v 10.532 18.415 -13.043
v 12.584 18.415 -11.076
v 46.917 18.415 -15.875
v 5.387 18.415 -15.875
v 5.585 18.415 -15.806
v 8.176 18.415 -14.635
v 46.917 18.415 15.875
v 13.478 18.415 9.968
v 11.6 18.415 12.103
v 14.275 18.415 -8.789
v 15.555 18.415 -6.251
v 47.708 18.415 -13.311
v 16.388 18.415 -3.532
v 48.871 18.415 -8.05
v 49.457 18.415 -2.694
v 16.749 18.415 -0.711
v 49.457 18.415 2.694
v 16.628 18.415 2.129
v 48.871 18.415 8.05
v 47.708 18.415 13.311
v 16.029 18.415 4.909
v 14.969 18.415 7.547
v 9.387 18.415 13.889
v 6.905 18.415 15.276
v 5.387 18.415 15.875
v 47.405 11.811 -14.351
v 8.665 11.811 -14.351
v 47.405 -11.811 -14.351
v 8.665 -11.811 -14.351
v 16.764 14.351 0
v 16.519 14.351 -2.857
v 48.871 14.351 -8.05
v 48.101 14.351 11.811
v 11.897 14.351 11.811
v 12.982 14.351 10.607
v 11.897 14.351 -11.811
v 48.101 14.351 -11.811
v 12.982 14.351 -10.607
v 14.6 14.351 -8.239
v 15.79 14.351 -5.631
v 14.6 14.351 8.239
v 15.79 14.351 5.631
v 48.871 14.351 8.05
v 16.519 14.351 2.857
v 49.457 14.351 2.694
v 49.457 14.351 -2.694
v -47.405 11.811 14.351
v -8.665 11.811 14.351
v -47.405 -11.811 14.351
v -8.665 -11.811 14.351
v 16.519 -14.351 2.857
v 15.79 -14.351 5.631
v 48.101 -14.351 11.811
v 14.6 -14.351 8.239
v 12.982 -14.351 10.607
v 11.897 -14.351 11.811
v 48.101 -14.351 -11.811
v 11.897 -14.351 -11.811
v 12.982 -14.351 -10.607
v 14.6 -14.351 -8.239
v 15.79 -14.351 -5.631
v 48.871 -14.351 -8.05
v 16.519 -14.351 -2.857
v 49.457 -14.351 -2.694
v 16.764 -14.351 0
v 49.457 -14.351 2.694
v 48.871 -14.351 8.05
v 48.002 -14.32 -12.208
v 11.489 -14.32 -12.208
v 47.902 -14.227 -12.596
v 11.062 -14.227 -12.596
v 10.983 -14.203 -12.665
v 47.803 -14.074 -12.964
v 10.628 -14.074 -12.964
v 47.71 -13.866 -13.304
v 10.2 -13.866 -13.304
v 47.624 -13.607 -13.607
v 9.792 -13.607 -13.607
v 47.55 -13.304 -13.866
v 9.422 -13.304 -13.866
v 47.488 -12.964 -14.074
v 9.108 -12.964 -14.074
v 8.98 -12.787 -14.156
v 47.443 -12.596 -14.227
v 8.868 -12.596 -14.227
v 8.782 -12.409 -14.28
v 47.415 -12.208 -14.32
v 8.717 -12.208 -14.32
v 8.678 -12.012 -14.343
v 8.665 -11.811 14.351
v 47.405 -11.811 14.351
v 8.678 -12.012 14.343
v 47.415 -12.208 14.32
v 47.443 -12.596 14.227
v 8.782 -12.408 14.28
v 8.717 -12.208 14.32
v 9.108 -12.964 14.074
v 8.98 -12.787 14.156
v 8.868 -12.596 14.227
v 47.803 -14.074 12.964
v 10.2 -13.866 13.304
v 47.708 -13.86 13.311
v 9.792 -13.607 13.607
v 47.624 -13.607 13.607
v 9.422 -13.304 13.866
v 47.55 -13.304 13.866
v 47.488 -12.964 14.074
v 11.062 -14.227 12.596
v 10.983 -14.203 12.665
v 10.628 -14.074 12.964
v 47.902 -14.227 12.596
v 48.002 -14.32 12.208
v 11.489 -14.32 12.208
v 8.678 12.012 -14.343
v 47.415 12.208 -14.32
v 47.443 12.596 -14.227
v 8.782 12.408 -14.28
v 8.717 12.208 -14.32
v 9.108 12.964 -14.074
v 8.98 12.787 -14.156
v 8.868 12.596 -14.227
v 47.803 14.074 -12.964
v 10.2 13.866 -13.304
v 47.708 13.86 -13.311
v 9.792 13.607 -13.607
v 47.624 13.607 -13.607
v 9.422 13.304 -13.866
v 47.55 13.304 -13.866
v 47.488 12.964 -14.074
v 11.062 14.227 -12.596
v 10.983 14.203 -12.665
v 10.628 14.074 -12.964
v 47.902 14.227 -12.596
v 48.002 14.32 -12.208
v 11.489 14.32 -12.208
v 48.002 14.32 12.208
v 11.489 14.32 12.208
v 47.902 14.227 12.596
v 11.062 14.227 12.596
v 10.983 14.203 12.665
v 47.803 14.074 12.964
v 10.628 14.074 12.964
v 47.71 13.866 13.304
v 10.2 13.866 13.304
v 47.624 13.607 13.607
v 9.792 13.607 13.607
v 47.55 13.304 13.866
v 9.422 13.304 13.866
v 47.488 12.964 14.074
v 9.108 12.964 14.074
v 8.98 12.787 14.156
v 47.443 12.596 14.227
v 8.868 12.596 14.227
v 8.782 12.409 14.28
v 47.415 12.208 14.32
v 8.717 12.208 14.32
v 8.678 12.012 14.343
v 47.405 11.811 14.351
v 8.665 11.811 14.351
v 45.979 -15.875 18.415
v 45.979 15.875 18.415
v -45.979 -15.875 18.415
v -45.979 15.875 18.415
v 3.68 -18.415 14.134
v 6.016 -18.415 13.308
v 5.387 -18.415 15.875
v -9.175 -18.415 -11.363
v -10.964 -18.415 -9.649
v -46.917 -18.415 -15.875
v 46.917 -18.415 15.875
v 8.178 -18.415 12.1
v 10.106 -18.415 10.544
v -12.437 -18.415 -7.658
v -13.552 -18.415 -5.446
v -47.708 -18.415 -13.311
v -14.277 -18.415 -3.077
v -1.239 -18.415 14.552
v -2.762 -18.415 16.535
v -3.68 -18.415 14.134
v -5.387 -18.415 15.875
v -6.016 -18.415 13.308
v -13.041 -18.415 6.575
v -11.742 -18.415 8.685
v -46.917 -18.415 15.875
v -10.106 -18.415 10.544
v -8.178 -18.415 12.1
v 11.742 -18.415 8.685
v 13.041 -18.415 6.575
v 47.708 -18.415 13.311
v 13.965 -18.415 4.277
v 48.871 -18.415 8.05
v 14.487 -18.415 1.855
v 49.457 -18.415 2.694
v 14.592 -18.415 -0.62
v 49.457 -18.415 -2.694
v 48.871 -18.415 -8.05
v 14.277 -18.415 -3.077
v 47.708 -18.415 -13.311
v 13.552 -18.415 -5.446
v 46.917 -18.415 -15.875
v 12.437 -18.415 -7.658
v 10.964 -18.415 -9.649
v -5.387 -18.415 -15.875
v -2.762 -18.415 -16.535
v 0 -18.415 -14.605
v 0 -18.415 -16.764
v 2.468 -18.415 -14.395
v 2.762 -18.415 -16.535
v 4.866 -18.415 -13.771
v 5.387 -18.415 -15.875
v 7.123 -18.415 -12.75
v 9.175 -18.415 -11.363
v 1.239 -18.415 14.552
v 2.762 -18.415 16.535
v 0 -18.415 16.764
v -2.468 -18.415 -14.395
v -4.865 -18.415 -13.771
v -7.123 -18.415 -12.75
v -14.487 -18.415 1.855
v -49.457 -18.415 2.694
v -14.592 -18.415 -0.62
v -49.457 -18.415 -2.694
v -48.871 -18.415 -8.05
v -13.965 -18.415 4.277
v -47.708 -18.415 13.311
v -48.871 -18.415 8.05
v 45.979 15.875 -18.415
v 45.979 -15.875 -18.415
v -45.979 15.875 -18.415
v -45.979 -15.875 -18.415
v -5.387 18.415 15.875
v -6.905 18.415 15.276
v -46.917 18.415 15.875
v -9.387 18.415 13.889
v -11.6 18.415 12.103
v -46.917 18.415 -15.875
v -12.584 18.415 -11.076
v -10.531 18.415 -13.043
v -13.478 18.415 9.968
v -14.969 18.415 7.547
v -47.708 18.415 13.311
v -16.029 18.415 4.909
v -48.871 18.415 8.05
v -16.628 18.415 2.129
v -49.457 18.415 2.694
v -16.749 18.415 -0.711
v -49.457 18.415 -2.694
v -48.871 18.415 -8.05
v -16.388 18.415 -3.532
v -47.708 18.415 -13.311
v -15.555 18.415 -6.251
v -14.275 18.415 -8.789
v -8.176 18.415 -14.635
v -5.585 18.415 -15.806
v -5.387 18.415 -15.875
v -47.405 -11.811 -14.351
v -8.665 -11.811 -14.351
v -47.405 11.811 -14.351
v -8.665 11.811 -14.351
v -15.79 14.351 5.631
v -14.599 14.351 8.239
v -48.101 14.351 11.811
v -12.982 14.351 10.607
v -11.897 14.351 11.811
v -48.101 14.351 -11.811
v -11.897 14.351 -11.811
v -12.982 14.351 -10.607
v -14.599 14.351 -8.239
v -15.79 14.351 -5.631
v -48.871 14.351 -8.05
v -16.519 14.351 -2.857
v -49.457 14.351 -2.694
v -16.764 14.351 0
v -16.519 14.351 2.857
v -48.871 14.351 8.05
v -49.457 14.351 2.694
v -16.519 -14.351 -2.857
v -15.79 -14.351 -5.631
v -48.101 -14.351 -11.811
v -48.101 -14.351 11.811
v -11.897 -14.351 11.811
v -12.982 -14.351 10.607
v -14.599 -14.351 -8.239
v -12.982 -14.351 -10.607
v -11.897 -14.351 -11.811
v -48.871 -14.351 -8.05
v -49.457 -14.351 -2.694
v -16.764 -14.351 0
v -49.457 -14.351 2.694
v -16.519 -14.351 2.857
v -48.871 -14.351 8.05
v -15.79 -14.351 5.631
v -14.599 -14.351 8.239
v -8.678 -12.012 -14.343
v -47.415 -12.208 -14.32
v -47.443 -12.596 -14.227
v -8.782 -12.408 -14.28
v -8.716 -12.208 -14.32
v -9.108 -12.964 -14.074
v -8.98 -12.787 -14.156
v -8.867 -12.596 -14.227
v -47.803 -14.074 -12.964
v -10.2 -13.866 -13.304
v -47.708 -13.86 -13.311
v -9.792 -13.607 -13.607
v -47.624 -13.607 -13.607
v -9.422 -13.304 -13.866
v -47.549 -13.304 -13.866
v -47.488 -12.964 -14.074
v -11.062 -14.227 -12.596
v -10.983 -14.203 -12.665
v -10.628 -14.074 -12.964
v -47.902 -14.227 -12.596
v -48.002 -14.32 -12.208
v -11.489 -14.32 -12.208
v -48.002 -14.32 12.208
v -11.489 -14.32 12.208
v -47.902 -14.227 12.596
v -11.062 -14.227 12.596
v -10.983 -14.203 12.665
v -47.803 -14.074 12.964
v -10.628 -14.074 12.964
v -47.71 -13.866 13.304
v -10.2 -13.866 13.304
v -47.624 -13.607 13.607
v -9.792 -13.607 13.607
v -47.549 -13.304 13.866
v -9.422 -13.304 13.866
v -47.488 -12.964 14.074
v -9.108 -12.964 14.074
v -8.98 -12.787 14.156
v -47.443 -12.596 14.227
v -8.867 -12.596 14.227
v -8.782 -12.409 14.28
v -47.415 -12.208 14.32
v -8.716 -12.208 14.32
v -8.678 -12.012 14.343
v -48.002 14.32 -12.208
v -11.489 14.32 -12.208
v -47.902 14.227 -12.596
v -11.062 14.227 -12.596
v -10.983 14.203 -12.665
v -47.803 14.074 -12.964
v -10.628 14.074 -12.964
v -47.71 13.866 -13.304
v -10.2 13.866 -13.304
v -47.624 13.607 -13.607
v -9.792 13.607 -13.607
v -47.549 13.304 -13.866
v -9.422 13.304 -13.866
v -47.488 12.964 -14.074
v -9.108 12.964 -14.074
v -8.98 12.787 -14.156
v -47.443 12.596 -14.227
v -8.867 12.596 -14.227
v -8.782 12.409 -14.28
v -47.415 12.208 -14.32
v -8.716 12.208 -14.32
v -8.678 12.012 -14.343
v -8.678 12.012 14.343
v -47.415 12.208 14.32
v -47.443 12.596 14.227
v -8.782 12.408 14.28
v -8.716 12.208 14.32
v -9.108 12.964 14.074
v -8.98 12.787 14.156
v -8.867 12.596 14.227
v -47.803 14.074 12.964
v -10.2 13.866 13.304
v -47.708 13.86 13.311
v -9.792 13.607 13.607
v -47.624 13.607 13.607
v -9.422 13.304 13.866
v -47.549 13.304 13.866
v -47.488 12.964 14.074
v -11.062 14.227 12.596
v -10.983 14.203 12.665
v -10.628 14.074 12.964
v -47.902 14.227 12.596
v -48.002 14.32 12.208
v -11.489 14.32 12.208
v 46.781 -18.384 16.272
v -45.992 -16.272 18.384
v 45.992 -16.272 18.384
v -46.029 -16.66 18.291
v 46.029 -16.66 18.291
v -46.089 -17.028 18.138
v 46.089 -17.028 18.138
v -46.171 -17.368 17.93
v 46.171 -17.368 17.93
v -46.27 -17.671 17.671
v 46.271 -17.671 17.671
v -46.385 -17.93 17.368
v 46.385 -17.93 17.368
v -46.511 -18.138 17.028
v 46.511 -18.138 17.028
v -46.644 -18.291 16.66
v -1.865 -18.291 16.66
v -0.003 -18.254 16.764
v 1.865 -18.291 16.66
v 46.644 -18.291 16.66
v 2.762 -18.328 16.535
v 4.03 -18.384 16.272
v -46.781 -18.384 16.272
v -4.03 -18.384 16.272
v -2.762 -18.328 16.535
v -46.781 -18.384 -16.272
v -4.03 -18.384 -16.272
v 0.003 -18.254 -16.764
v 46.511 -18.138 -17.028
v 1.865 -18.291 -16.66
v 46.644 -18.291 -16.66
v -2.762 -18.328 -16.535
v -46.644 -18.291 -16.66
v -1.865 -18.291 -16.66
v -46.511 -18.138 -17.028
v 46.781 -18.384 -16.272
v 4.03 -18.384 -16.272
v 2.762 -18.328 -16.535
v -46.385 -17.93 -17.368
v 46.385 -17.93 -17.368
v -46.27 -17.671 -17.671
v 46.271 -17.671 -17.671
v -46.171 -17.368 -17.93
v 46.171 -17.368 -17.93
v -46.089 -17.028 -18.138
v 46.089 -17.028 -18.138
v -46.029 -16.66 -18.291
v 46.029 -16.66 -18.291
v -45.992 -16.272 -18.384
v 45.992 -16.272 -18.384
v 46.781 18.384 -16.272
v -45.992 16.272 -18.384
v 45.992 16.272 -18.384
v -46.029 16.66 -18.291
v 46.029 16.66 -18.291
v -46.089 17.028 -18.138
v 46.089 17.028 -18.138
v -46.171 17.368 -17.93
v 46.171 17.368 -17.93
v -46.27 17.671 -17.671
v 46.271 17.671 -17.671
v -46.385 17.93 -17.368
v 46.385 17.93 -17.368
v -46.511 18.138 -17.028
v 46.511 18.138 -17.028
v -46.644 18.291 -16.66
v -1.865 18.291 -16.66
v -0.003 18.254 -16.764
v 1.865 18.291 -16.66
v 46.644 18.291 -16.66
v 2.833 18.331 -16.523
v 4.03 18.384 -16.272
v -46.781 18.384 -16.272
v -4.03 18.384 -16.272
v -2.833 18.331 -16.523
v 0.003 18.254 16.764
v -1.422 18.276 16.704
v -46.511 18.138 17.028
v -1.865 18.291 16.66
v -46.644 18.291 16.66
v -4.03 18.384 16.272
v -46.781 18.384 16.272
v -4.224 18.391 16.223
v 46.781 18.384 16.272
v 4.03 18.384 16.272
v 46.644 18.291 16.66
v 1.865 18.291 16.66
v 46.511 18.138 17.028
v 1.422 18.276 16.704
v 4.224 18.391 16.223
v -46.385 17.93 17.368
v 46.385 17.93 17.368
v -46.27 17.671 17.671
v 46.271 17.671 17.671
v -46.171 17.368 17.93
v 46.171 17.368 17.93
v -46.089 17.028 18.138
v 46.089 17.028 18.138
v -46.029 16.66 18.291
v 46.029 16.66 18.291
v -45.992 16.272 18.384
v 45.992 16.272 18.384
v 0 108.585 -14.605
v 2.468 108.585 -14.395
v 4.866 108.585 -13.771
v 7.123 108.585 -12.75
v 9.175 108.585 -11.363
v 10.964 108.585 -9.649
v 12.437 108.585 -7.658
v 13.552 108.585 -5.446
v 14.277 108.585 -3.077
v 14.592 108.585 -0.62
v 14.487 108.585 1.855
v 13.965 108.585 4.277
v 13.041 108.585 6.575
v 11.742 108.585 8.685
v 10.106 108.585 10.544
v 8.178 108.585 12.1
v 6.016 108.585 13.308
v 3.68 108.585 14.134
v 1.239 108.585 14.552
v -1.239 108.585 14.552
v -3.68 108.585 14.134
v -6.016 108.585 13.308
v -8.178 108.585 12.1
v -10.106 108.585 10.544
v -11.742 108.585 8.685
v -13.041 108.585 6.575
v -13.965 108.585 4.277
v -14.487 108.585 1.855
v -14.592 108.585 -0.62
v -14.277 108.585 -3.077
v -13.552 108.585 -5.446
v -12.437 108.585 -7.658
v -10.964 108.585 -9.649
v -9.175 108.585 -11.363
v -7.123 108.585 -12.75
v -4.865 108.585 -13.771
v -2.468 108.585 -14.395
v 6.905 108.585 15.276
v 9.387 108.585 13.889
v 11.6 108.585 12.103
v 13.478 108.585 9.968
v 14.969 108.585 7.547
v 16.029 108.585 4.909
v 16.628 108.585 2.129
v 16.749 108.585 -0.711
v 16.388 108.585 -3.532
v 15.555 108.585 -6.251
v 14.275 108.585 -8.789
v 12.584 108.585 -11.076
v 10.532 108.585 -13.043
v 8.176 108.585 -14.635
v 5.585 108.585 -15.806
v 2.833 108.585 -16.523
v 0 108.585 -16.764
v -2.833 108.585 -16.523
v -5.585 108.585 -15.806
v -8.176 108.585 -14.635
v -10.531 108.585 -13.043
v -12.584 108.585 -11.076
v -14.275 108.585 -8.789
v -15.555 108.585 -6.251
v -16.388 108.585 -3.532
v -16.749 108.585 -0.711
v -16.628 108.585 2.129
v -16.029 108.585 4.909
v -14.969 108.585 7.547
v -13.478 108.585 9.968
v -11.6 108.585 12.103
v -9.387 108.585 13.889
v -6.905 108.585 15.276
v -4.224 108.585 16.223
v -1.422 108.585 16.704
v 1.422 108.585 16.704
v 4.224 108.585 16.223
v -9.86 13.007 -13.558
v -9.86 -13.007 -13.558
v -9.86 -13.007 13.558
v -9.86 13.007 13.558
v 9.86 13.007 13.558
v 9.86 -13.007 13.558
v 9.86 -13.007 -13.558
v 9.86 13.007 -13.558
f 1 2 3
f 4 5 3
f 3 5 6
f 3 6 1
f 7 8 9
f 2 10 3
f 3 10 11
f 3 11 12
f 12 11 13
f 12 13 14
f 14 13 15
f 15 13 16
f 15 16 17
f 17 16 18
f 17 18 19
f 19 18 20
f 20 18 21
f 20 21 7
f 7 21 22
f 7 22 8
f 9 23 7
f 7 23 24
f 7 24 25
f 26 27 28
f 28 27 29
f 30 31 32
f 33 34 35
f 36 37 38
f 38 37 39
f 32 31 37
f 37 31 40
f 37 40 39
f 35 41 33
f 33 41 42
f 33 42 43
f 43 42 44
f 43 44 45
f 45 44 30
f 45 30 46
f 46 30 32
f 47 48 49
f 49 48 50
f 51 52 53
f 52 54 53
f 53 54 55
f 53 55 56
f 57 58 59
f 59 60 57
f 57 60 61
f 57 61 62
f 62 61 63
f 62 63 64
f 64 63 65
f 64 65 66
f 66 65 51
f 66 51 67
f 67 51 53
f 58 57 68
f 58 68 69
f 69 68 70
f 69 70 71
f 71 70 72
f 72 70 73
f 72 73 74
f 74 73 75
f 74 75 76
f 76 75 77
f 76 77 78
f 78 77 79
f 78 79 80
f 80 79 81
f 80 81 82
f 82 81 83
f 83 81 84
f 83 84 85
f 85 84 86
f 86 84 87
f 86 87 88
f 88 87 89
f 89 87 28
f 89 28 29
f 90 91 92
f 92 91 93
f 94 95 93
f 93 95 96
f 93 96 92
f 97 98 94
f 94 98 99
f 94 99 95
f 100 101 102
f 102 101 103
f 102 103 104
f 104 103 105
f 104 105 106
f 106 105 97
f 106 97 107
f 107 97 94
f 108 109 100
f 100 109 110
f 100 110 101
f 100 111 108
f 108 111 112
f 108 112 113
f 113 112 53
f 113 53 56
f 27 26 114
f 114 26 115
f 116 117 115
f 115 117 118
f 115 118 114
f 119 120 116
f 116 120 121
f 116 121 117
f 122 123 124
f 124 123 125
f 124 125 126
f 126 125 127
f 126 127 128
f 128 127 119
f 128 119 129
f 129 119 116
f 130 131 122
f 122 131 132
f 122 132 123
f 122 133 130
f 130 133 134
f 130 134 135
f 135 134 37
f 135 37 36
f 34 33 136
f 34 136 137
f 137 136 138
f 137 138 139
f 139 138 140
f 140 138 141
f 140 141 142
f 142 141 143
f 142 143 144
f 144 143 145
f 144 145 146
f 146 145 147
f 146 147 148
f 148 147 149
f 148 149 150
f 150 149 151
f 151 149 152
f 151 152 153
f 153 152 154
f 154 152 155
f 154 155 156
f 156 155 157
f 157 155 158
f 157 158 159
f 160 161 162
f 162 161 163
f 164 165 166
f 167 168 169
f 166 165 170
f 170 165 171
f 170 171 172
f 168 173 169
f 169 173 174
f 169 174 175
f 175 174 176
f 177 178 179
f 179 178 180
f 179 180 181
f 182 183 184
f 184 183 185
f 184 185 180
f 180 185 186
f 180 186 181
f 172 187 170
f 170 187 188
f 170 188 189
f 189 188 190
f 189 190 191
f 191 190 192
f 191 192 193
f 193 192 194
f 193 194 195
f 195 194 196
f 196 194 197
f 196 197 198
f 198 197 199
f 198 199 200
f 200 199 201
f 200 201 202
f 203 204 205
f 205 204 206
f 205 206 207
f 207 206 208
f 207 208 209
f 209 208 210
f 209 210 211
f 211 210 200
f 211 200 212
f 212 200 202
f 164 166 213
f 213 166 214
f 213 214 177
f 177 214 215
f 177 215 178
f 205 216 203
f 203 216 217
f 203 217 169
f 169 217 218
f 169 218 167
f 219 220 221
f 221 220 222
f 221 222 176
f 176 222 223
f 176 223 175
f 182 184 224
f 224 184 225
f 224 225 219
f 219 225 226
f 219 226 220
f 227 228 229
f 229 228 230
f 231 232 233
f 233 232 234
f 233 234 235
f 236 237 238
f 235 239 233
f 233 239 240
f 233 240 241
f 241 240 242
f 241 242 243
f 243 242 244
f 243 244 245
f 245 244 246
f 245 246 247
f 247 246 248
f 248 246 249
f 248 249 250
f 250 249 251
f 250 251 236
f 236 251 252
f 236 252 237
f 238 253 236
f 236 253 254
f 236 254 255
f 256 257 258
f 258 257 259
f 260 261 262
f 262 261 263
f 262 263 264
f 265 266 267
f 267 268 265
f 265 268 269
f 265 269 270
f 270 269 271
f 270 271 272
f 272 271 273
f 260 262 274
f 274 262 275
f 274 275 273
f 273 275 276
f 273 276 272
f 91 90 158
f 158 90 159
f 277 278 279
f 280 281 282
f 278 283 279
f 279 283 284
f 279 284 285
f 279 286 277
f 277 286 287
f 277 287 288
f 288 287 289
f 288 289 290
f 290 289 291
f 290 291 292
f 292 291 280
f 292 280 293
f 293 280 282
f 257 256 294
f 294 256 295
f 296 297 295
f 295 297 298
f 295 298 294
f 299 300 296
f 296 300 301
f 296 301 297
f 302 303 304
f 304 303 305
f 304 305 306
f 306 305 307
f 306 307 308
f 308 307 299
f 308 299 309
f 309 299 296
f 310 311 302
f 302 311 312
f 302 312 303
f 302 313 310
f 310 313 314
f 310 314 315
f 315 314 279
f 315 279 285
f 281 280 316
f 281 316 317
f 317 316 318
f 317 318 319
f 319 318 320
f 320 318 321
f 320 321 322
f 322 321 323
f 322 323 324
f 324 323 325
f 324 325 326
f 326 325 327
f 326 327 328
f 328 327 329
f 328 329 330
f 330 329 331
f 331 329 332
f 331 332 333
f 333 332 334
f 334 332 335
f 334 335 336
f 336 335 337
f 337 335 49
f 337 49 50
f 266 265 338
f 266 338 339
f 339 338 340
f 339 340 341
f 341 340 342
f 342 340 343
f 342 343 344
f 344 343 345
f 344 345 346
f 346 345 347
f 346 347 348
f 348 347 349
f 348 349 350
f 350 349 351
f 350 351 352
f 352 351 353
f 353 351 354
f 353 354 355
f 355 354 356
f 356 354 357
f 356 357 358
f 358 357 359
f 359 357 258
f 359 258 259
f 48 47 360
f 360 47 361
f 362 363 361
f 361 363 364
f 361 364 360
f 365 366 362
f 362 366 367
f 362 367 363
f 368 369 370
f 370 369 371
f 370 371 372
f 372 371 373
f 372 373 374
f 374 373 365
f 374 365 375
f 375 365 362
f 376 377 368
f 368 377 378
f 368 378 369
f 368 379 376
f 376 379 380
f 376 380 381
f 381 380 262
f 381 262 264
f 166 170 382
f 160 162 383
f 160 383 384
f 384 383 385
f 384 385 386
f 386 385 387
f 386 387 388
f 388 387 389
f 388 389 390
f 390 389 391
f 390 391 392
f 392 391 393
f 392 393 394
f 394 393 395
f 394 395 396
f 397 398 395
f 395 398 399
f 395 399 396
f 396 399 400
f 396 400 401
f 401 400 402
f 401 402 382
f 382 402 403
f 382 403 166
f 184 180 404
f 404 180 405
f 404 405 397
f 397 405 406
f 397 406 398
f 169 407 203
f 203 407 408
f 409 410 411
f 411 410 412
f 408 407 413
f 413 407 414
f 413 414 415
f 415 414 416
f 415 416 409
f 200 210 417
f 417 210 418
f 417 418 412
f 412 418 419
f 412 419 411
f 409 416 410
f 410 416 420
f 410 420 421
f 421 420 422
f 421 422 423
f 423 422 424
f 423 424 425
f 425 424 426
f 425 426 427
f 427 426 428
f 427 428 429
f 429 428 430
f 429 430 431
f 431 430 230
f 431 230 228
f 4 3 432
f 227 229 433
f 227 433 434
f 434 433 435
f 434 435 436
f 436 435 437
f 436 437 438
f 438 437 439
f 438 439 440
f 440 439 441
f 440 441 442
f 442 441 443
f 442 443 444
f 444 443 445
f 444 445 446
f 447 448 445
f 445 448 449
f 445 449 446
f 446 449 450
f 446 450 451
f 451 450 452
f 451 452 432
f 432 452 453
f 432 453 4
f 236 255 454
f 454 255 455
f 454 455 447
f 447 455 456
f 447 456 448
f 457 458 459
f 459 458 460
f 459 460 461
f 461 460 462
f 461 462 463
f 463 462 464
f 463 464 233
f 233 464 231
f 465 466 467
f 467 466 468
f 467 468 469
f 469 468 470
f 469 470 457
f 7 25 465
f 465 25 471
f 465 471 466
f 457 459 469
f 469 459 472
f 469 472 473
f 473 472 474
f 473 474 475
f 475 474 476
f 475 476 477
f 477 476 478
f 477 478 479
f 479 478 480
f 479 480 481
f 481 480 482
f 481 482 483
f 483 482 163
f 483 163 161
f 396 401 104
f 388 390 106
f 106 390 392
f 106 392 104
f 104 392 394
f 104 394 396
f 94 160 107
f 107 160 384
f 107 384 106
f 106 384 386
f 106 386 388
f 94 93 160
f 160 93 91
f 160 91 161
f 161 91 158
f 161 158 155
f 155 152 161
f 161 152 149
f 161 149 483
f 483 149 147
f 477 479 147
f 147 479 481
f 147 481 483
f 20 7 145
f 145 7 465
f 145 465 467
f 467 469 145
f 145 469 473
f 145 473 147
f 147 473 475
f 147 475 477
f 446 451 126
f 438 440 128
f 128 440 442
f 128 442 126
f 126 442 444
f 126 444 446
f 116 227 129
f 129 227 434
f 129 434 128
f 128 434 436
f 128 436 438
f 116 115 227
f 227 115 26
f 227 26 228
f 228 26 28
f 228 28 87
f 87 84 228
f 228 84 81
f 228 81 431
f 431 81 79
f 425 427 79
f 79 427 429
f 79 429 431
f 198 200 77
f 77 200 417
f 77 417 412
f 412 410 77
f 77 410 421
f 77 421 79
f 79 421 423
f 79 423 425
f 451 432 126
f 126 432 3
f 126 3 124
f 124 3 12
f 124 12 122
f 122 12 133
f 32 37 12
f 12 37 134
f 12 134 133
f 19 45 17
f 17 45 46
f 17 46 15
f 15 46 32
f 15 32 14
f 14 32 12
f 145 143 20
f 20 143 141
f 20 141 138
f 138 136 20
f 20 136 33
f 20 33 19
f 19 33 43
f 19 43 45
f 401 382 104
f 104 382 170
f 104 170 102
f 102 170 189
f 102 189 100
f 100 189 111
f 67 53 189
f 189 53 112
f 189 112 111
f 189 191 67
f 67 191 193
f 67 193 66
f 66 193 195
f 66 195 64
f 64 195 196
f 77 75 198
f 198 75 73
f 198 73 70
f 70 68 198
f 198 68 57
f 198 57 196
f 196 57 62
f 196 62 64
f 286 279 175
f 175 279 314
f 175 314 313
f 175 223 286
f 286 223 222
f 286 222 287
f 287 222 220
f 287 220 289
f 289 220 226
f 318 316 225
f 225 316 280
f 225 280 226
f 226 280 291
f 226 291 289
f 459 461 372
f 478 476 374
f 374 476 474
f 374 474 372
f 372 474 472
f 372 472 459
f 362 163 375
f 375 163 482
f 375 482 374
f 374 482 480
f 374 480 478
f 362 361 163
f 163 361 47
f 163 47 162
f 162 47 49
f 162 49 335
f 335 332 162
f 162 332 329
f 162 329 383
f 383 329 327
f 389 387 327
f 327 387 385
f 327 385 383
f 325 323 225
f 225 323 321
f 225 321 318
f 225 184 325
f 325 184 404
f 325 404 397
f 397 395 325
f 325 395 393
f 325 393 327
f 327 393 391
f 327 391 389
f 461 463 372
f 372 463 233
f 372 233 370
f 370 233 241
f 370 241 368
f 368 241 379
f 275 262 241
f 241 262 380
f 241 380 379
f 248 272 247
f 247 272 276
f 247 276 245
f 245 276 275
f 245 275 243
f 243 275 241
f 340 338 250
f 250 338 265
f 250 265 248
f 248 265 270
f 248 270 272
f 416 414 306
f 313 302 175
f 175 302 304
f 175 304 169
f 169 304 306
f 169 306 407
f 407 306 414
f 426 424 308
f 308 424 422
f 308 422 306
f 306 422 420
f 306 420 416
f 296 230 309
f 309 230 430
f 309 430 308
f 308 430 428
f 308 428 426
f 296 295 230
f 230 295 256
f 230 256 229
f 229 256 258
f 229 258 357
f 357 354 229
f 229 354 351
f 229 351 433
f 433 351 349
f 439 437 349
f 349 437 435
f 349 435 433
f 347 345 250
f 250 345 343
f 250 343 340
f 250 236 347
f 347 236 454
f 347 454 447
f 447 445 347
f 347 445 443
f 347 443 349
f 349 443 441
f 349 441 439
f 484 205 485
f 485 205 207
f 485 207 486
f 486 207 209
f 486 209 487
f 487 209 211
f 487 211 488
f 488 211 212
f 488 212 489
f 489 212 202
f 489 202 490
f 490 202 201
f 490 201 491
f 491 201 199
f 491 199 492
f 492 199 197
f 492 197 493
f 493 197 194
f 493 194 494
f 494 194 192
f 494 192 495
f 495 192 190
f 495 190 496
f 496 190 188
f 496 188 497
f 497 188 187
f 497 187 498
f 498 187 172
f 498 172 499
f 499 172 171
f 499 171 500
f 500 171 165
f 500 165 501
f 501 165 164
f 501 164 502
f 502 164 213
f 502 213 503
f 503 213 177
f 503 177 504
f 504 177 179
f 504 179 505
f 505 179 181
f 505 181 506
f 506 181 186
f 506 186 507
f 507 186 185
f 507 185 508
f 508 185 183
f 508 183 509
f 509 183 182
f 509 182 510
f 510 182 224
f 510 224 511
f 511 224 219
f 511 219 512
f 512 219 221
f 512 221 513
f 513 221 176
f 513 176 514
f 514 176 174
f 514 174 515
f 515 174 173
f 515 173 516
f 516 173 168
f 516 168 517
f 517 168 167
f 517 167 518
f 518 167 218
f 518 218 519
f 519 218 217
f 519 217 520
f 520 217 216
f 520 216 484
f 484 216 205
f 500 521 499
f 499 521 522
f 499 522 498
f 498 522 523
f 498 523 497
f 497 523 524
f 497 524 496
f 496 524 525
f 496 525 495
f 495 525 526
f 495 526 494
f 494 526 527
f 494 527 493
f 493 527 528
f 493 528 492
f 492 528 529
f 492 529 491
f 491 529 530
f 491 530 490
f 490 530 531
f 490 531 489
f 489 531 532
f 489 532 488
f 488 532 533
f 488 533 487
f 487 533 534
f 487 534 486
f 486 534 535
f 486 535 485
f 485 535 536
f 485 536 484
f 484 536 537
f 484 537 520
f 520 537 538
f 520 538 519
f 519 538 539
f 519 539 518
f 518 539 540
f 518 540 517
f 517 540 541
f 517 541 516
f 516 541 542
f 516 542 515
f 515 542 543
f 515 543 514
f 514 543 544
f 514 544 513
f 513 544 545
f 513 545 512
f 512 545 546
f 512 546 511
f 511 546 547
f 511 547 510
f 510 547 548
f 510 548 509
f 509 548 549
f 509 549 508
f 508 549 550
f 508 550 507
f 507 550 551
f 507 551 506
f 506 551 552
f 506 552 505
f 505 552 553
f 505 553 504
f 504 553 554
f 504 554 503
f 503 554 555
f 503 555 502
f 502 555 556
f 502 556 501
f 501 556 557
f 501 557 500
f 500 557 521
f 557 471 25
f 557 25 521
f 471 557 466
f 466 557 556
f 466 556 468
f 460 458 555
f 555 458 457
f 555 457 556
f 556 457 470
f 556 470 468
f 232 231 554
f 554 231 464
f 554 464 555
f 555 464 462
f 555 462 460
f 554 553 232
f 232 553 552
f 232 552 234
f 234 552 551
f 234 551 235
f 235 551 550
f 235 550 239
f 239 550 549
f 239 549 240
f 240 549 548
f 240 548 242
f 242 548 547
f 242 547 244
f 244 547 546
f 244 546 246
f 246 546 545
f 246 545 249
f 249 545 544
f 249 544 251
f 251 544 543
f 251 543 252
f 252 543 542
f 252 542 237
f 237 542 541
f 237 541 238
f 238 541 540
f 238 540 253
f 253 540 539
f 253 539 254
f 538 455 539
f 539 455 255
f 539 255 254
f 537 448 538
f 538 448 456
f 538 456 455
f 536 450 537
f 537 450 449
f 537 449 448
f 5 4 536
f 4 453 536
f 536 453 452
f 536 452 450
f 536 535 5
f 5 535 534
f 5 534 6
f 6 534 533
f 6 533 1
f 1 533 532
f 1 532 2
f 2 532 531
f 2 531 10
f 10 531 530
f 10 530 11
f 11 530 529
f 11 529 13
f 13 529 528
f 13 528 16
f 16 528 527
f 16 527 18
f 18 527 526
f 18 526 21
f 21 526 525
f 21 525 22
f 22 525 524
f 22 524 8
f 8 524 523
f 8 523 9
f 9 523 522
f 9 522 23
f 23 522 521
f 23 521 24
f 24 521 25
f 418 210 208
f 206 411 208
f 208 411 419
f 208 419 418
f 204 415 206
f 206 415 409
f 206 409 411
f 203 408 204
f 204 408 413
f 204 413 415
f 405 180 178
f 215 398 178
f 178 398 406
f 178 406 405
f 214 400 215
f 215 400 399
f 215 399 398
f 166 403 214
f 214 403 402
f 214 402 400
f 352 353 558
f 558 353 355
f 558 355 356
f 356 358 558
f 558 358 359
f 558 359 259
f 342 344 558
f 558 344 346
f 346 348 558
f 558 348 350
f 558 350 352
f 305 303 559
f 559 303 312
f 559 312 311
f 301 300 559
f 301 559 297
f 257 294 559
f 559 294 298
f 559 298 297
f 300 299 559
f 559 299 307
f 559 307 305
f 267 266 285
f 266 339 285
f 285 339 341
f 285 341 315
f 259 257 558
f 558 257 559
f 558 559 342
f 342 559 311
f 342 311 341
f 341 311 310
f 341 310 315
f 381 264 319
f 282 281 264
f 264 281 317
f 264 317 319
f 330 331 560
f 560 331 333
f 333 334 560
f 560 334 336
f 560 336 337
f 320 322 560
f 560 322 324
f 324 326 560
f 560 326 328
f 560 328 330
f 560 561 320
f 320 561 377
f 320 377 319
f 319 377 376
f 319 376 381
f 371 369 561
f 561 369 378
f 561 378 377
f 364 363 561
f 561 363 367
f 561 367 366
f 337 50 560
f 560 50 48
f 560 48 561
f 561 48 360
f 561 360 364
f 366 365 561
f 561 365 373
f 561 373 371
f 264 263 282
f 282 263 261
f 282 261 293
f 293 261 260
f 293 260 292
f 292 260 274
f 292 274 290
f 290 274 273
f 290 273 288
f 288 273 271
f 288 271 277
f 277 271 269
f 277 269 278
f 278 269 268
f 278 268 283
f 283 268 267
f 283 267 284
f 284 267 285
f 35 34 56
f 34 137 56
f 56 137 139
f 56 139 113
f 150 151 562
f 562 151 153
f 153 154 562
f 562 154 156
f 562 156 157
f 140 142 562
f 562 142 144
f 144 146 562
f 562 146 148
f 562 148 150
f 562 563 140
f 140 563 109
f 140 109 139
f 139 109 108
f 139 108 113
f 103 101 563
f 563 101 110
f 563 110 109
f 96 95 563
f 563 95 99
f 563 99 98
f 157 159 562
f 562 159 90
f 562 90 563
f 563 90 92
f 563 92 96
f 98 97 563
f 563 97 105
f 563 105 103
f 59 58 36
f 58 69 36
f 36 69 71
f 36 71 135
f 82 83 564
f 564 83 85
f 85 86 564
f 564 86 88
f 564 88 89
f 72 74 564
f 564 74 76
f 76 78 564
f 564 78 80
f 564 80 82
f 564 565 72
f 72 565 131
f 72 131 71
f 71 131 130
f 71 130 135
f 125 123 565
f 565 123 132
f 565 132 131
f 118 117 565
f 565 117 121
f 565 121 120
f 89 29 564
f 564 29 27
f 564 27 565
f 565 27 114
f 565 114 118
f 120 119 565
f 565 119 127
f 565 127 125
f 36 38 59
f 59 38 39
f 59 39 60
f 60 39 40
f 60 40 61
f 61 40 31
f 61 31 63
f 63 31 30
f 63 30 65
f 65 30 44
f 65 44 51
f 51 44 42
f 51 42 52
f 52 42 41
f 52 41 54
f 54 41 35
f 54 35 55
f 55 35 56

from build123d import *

# Parameters (mm, degrees)
SKETCH1_W           = 36.83
SKETCH1_H           = 36.83
SKETCH1_W_2         = 28.702
SKETCH1_H_2         = 28.702
BOSS_EXTRUDE1_DEPTH = 50.8
FILLET1_R           = 2.54
SKETCH3_R           = 16.764
CUT_EXTRUDE2_DEPTH  = 66.39266874
CUT_EXTRUDE3_DEPTH  = 66.392668903
BOSS_EXTRUDE2_START = -127
SKETCH5_R           = 16.764
SKETCH5_R_2         = 14.605
BOSS_EXTRUDE2_DEPTH = 127


with BuildPart() as part:
    # Sketch1 → Boss-Extrude1 (new, symmetric)
    with BuildSketch(Plane(origin=(0, 0, 0), x_dir=(0, 0, -1), z_dir=(1, 0, 0))):
        Rectangle(SKETCH1_W, SKETCH1_H)
        Rectangle(SKETCH1_W_2, SKETCH1_H_2, mode=Mode.SUBTRACT)
    extrude(amount=BOSS_EXTRUDE1_DEPTH, both=True)

    # Fillet1
    fillet1_edges = [part.edges().sort_by_distance(p)[0] for p in [
        (0, -14.351, -14.351),
        (0, 14.351, -14.351),
        (0, 14.351, 14.351),
        (0, -14.351, 14.351),
        (0, 18.415, 18.415),
        (0, 18.415, -18.415),
        (0, -18.415, -18.415),
        (0, -18.415, 18.415),
    ]]
    fillet(fillet1_edges, radius=FILLET1_R)

    # Sketch3 → Cut-Extrude2 (cut, through all)
    with BuildSketch(Plane(origin=(0, 18.415, 0), x_dir=(1, 0, 0), z_dir=(0, 1, 0))):
        with Locations(Location((0, 0, 0), (0, 0, 251.257054082))):
            Circle(SKETCH3_R)
    extrude(amount=-CUT_EXTRUDE2_DEPTH, mode=Mode.SUBTRACT)

    # Sketch4 → Cut-Extrude3 (cut, through all)
    with BuildSketch(Plane(origin=(0, 18.415, 0), x_dir=(1, 0, 0), z_dir=(0, 1, 0))):
        with BuildLine():
            Line((-45.979437524, 18.415), (-50.8, 18.415))
            Line((-50.8, 18.415), (-50.8, -18.415))
            Line((-50.8, -18.415), (-45.979437524, -18.415))
            ThreePointArc((-45.979437524, -18.415), (-49.53, 0), (-45.979437524, 18.415))
        make_face()
        with BuildLine():
            Line((50.8, 15.875), (46.917004114, 15.875))
            ThreePointArc((46.917004114, 15.875), (48.872385422, 8.044305012), (49.53, 0))
            ThreePointArc((49.53, 0), (48.872385422, -8.044305012), (46.917004114, -15.875))
            Line((46.917004114, -15.875), (50.8, -15.875))
            Line((50.8, -15.875), (50.8, 15.875))
        make_face()
        with BuildLine():
            Line((50.8, 18.415), (45.979437524, 18.415))
            ThreePointArc((45.979437524, 18.415), (46.465579919, 17.151407603), (46.917004114, 15.875))
            Line((46.917004114, 15.875), (50.8, 15.875))
            Line((50.8, 15.875), (50.8, 18.415))
        make_face()
        with BuildLine():
            ThreePointArc((46.917004114, -15.875), (46.465579919, -17.151407603), (45.979437524, -18.415))
            Line((45.979437524, -18.415), (50.8, -18.415))
            Line((50.8, -18.415), (50.8, -15.875))
            Line((50.8, -15.875), (46.917004114, -15.875))
        make_face()
    extrude(amount=-CUT_EXTRUDE3_DEPTH, mode=Mode.SUBTRACT)

    # Sketch5 → Boss-Extrude2 (add)
    with BuildSketch(Plane.XZ.offset(18.415).offset(BOSS_EXTRUDE2_START)):
        with Locations(Location((0, 0, 0), (0, 0, 270))):
            Circle(SKETCH5_R)
        with Locations(Location((0, 0, 0), (0, 0, 270))):
            Circle(SKETCH5_R_2, mode=Mode.SUBTRACT)
    extrude(amount=BOSS_EXTRUDE2_DEPTH)


solid = part.part
